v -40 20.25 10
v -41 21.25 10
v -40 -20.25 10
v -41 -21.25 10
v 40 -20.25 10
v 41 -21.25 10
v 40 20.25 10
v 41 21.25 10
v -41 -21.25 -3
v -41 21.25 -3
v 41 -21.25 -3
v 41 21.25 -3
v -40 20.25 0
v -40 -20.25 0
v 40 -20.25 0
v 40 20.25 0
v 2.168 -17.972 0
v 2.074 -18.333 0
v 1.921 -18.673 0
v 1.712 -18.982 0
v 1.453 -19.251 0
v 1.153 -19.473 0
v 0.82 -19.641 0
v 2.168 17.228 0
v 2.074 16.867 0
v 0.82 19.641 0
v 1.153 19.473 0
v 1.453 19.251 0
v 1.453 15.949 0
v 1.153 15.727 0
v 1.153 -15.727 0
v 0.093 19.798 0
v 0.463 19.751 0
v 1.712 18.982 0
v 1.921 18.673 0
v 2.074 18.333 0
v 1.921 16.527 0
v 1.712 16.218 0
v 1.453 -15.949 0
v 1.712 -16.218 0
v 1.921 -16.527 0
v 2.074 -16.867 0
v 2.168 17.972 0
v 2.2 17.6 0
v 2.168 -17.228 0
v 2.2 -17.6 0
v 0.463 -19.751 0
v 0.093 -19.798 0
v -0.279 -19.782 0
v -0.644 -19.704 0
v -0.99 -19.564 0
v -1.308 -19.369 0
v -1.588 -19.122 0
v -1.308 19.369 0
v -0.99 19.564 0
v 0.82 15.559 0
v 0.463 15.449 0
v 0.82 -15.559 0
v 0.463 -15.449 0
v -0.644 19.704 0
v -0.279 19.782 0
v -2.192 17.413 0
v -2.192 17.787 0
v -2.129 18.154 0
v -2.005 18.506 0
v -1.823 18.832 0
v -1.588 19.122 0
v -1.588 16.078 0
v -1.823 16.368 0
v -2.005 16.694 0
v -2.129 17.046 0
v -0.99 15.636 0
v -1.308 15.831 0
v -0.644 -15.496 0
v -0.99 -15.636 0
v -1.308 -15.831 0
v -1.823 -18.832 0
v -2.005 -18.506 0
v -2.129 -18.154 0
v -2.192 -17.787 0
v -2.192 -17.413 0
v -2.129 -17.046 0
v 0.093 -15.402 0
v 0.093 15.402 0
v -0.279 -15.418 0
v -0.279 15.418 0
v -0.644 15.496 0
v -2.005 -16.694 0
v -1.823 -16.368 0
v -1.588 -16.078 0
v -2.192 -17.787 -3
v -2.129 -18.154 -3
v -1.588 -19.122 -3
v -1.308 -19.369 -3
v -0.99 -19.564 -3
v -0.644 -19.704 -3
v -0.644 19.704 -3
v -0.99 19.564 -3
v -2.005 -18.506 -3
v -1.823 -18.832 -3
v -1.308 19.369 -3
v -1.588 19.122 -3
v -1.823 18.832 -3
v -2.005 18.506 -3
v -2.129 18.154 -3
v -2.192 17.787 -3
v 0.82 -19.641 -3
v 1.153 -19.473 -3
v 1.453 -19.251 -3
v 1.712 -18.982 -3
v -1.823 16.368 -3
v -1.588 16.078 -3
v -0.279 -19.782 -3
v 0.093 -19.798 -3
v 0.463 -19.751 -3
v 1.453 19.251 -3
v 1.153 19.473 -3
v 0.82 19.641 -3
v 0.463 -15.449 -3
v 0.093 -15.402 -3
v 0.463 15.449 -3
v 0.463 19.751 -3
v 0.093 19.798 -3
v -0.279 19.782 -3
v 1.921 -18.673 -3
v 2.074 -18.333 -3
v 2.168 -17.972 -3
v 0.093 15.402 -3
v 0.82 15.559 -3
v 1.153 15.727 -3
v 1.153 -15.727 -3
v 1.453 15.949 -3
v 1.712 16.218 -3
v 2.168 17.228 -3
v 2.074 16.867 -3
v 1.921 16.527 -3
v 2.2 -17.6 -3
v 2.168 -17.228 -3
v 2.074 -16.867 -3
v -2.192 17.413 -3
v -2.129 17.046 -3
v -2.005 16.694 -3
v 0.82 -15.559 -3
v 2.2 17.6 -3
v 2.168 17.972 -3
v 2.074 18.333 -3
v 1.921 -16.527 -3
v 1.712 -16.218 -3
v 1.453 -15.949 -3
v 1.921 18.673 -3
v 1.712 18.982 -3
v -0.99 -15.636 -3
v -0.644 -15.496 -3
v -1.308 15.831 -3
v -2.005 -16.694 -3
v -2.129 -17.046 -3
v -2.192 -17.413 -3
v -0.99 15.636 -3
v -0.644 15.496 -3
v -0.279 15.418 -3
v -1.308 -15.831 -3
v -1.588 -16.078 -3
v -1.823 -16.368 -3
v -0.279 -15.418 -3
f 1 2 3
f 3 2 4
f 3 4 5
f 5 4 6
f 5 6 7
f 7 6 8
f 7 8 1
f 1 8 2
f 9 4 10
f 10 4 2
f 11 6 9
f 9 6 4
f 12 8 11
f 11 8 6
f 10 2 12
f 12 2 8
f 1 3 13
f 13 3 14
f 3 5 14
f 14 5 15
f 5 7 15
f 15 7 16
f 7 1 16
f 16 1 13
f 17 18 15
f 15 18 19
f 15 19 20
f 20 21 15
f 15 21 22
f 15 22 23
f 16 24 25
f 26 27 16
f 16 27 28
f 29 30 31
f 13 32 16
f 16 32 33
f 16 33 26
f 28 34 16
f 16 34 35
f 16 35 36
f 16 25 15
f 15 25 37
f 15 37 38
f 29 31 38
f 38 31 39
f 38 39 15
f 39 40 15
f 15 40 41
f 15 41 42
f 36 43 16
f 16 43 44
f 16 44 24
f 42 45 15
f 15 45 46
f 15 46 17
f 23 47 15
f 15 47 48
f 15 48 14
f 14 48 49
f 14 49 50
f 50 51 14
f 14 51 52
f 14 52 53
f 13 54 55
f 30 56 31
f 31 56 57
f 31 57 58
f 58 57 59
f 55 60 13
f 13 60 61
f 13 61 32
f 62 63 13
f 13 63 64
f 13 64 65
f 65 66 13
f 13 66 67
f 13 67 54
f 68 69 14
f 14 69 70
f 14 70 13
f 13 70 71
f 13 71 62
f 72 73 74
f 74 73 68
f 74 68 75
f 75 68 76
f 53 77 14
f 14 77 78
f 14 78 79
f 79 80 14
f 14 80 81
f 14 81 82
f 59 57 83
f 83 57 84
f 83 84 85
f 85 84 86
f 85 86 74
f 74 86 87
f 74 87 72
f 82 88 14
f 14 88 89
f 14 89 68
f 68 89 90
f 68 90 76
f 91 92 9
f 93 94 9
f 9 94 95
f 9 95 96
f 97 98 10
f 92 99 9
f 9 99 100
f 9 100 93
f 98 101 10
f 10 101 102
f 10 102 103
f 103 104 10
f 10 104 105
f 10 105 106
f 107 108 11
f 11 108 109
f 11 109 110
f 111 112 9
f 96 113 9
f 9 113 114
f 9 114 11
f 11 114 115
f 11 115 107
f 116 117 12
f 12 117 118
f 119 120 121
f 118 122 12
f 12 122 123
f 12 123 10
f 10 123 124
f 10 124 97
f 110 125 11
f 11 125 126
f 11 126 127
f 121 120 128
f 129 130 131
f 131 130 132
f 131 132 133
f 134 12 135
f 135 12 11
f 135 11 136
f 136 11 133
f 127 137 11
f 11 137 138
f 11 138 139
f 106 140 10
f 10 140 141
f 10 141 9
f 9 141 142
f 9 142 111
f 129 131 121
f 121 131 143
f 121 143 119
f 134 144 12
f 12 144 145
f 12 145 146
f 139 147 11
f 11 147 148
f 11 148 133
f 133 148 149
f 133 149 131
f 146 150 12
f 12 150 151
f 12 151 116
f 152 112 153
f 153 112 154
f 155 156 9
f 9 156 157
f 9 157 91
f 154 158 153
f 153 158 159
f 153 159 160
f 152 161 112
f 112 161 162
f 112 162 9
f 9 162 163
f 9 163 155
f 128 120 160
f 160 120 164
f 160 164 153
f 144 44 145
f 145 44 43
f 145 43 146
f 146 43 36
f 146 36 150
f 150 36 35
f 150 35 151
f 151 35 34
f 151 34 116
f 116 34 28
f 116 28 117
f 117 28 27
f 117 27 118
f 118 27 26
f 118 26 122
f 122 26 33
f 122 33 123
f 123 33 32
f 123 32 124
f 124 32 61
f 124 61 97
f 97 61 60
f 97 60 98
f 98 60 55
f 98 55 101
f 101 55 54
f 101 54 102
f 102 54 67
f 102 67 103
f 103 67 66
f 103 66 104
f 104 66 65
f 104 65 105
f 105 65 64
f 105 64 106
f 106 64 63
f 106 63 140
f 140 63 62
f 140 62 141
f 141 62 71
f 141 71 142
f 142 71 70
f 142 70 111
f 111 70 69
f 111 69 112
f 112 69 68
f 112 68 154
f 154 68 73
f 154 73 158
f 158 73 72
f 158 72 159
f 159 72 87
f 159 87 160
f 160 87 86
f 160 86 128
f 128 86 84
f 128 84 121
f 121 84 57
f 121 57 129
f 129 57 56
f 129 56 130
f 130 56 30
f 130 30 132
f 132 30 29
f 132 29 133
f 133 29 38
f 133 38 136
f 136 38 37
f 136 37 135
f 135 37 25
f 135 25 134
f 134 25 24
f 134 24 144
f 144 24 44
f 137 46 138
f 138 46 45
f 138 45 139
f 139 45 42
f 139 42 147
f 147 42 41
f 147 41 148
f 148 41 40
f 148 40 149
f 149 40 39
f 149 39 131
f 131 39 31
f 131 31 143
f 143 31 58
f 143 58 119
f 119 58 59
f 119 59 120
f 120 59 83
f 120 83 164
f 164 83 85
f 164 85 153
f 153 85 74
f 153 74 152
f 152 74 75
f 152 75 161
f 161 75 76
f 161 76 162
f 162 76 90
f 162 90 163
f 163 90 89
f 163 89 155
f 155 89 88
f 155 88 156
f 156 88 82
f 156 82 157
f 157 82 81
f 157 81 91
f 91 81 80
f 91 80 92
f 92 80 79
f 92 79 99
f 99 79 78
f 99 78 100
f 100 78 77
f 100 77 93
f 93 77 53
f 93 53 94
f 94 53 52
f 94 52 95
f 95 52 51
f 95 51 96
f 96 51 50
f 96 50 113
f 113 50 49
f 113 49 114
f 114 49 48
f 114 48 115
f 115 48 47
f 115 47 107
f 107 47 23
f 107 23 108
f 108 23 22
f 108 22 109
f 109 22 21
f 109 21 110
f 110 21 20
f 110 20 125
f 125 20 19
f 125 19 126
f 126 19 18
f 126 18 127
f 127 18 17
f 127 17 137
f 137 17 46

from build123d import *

# Parameters (mm, degrees)
SKETCH1_W                   = 82
SKETCH1_H                   = 42.5
SKETCH1_W_2                 = 80
SKETCH1_H_2                 = 40.5
VYSUNOUT_TENKOST_NN_1_DEPTH = 10
SKICA1_W                    = 82
SKICA1_H                    = 42.5
P_IDAT_VYSUNUT_M1_DEPTH     = 3
SKETCH3_R                   = 2.2
CUT_EXTRUDE2_DEPTH          = 11
CUT_EXTRUDE2_DEPTH_BACK     = 4


with BuildPart() as part:
    # Sketch1 → Vysunout tenkostěnný1 (new body)
    with BuildSketch(Plane.XY):
        Rectangle(SKETCH1_W, SKETCH1_H)
        Rectangle(SKETCH1_W_2, SKETCH1_H_2, mode=Mode.SUBTRACT)
    extrude(amount=VYSUNOUT_TENKOST_NN_1_DEPTH)

    # Skica1 → Přidat vysunutím1 (add)
    with BuildSketch(Plane.XY):
        Rectangle(SKICA1_W, SKICA1_H)
    extrude(amount=-P_IDAT_VYSUNUT_M1_DEPTH)

    # Sketch3 → Cut-Extrude2 (cut, two sides)
    with BuildSketch(Plane.XY) as cut_extrude2_sk:
        with Locations((0, -17.6)):
            Circle(SKETCH3_R)
        with Locations((0, 17.6)):
            Circle(SKETCH3_R)
    extrude(amount=CUT_EXTRUDE2_DEPTH, mode=Mode.SUBTRACT)
    extrude(cut_extrude2_sk.sketch, amount=-CUT_EXTRUDE2_DEPTH_BACK, mode=Mode.SUBTRACT)


solid = part.part
